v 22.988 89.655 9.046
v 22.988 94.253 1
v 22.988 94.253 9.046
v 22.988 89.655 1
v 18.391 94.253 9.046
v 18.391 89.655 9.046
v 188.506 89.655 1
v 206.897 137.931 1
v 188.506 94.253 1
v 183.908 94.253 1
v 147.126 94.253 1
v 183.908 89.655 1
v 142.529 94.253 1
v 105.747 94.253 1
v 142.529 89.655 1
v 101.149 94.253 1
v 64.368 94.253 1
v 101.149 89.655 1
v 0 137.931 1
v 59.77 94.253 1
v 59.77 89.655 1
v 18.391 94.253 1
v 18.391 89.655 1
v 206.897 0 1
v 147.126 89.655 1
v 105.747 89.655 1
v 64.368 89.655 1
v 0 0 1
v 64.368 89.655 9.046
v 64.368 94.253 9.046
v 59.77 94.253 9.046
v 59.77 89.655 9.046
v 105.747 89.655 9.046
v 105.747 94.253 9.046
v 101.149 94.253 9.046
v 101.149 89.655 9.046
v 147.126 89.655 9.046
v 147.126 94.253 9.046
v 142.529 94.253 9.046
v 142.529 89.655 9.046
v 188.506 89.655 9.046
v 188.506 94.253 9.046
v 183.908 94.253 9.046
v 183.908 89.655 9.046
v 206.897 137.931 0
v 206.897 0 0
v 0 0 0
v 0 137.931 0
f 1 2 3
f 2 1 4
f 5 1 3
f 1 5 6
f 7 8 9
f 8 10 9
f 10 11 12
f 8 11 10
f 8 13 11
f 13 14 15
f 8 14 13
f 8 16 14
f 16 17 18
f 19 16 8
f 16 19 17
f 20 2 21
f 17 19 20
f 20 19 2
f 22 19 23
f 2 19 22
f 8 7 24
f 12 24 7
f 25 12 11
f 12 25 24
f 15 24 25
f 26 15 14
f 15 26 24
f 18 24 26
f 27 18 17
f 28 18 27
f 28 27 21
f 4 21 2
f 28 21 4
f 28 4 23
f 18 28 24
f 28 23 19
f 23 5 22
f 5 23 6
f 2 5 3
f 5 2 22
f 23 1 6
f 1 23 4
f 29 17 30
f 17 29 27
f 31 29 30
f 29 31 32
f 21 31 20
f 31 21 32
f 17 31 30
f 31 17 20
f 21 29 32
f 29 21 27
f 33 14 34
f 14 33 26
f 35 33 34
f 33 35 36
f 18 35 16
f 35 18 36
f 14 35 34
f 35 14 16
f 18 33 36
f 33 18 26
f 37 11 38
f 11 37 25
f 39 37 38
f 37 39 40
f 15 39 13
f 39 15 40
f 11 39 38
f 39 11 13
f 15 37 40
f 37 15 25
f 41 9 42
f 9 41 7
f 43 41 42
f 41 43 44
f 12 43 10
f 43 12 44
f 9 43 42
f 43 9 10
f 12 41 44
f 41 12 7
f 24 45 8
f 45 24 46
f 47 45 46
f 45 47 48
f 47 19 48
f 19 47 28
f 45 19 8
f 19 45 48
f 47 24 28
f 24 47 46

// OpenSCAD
/*
 * PROMPT: H0 scale (1:87) Eastern European prefab apartment block — flat roof panel with five chimneys, one per bay centred in X at 2/3 depth from front face. Flat slab sized to building footprint, chimneys are solid rectangular protrusions on top. Flat for FDM printing, exterior face up.
 */

$fn = 32;

S          = 1/87;
panel_t    = 1.0;

bld_w      = 18000 * S;   // 206.9 mm
bld_d      = 12000 * S;   // 137.9 mm

n_bays     = 5;
bay_w      = bld_w / n_bays;   // 41.4 mm

chimney_w  = 400 * S;   //  4.6 mm
chimney_d  = 400 * S;   //  4.6 mm
chimney_h  = 700 * S;   //  8.0 mm

module roof_panel() {
    // Flat roof slab
    cube([bld_w, bld_d, panel_t]);

    // Chimneys: one per bay, centred in X, at 2/3 depth from front face
    for (b = [0 : n_bays - 1]) {
        translate([
            b * bay_w + (bay_w - chimney_w) / 2,
            bld_d * 2/3 - chimney_d / 2,
            panel_t
        ])
        cube([chimney_w, chimney_d, chimney_h]);
    }
}

roof_panel();
